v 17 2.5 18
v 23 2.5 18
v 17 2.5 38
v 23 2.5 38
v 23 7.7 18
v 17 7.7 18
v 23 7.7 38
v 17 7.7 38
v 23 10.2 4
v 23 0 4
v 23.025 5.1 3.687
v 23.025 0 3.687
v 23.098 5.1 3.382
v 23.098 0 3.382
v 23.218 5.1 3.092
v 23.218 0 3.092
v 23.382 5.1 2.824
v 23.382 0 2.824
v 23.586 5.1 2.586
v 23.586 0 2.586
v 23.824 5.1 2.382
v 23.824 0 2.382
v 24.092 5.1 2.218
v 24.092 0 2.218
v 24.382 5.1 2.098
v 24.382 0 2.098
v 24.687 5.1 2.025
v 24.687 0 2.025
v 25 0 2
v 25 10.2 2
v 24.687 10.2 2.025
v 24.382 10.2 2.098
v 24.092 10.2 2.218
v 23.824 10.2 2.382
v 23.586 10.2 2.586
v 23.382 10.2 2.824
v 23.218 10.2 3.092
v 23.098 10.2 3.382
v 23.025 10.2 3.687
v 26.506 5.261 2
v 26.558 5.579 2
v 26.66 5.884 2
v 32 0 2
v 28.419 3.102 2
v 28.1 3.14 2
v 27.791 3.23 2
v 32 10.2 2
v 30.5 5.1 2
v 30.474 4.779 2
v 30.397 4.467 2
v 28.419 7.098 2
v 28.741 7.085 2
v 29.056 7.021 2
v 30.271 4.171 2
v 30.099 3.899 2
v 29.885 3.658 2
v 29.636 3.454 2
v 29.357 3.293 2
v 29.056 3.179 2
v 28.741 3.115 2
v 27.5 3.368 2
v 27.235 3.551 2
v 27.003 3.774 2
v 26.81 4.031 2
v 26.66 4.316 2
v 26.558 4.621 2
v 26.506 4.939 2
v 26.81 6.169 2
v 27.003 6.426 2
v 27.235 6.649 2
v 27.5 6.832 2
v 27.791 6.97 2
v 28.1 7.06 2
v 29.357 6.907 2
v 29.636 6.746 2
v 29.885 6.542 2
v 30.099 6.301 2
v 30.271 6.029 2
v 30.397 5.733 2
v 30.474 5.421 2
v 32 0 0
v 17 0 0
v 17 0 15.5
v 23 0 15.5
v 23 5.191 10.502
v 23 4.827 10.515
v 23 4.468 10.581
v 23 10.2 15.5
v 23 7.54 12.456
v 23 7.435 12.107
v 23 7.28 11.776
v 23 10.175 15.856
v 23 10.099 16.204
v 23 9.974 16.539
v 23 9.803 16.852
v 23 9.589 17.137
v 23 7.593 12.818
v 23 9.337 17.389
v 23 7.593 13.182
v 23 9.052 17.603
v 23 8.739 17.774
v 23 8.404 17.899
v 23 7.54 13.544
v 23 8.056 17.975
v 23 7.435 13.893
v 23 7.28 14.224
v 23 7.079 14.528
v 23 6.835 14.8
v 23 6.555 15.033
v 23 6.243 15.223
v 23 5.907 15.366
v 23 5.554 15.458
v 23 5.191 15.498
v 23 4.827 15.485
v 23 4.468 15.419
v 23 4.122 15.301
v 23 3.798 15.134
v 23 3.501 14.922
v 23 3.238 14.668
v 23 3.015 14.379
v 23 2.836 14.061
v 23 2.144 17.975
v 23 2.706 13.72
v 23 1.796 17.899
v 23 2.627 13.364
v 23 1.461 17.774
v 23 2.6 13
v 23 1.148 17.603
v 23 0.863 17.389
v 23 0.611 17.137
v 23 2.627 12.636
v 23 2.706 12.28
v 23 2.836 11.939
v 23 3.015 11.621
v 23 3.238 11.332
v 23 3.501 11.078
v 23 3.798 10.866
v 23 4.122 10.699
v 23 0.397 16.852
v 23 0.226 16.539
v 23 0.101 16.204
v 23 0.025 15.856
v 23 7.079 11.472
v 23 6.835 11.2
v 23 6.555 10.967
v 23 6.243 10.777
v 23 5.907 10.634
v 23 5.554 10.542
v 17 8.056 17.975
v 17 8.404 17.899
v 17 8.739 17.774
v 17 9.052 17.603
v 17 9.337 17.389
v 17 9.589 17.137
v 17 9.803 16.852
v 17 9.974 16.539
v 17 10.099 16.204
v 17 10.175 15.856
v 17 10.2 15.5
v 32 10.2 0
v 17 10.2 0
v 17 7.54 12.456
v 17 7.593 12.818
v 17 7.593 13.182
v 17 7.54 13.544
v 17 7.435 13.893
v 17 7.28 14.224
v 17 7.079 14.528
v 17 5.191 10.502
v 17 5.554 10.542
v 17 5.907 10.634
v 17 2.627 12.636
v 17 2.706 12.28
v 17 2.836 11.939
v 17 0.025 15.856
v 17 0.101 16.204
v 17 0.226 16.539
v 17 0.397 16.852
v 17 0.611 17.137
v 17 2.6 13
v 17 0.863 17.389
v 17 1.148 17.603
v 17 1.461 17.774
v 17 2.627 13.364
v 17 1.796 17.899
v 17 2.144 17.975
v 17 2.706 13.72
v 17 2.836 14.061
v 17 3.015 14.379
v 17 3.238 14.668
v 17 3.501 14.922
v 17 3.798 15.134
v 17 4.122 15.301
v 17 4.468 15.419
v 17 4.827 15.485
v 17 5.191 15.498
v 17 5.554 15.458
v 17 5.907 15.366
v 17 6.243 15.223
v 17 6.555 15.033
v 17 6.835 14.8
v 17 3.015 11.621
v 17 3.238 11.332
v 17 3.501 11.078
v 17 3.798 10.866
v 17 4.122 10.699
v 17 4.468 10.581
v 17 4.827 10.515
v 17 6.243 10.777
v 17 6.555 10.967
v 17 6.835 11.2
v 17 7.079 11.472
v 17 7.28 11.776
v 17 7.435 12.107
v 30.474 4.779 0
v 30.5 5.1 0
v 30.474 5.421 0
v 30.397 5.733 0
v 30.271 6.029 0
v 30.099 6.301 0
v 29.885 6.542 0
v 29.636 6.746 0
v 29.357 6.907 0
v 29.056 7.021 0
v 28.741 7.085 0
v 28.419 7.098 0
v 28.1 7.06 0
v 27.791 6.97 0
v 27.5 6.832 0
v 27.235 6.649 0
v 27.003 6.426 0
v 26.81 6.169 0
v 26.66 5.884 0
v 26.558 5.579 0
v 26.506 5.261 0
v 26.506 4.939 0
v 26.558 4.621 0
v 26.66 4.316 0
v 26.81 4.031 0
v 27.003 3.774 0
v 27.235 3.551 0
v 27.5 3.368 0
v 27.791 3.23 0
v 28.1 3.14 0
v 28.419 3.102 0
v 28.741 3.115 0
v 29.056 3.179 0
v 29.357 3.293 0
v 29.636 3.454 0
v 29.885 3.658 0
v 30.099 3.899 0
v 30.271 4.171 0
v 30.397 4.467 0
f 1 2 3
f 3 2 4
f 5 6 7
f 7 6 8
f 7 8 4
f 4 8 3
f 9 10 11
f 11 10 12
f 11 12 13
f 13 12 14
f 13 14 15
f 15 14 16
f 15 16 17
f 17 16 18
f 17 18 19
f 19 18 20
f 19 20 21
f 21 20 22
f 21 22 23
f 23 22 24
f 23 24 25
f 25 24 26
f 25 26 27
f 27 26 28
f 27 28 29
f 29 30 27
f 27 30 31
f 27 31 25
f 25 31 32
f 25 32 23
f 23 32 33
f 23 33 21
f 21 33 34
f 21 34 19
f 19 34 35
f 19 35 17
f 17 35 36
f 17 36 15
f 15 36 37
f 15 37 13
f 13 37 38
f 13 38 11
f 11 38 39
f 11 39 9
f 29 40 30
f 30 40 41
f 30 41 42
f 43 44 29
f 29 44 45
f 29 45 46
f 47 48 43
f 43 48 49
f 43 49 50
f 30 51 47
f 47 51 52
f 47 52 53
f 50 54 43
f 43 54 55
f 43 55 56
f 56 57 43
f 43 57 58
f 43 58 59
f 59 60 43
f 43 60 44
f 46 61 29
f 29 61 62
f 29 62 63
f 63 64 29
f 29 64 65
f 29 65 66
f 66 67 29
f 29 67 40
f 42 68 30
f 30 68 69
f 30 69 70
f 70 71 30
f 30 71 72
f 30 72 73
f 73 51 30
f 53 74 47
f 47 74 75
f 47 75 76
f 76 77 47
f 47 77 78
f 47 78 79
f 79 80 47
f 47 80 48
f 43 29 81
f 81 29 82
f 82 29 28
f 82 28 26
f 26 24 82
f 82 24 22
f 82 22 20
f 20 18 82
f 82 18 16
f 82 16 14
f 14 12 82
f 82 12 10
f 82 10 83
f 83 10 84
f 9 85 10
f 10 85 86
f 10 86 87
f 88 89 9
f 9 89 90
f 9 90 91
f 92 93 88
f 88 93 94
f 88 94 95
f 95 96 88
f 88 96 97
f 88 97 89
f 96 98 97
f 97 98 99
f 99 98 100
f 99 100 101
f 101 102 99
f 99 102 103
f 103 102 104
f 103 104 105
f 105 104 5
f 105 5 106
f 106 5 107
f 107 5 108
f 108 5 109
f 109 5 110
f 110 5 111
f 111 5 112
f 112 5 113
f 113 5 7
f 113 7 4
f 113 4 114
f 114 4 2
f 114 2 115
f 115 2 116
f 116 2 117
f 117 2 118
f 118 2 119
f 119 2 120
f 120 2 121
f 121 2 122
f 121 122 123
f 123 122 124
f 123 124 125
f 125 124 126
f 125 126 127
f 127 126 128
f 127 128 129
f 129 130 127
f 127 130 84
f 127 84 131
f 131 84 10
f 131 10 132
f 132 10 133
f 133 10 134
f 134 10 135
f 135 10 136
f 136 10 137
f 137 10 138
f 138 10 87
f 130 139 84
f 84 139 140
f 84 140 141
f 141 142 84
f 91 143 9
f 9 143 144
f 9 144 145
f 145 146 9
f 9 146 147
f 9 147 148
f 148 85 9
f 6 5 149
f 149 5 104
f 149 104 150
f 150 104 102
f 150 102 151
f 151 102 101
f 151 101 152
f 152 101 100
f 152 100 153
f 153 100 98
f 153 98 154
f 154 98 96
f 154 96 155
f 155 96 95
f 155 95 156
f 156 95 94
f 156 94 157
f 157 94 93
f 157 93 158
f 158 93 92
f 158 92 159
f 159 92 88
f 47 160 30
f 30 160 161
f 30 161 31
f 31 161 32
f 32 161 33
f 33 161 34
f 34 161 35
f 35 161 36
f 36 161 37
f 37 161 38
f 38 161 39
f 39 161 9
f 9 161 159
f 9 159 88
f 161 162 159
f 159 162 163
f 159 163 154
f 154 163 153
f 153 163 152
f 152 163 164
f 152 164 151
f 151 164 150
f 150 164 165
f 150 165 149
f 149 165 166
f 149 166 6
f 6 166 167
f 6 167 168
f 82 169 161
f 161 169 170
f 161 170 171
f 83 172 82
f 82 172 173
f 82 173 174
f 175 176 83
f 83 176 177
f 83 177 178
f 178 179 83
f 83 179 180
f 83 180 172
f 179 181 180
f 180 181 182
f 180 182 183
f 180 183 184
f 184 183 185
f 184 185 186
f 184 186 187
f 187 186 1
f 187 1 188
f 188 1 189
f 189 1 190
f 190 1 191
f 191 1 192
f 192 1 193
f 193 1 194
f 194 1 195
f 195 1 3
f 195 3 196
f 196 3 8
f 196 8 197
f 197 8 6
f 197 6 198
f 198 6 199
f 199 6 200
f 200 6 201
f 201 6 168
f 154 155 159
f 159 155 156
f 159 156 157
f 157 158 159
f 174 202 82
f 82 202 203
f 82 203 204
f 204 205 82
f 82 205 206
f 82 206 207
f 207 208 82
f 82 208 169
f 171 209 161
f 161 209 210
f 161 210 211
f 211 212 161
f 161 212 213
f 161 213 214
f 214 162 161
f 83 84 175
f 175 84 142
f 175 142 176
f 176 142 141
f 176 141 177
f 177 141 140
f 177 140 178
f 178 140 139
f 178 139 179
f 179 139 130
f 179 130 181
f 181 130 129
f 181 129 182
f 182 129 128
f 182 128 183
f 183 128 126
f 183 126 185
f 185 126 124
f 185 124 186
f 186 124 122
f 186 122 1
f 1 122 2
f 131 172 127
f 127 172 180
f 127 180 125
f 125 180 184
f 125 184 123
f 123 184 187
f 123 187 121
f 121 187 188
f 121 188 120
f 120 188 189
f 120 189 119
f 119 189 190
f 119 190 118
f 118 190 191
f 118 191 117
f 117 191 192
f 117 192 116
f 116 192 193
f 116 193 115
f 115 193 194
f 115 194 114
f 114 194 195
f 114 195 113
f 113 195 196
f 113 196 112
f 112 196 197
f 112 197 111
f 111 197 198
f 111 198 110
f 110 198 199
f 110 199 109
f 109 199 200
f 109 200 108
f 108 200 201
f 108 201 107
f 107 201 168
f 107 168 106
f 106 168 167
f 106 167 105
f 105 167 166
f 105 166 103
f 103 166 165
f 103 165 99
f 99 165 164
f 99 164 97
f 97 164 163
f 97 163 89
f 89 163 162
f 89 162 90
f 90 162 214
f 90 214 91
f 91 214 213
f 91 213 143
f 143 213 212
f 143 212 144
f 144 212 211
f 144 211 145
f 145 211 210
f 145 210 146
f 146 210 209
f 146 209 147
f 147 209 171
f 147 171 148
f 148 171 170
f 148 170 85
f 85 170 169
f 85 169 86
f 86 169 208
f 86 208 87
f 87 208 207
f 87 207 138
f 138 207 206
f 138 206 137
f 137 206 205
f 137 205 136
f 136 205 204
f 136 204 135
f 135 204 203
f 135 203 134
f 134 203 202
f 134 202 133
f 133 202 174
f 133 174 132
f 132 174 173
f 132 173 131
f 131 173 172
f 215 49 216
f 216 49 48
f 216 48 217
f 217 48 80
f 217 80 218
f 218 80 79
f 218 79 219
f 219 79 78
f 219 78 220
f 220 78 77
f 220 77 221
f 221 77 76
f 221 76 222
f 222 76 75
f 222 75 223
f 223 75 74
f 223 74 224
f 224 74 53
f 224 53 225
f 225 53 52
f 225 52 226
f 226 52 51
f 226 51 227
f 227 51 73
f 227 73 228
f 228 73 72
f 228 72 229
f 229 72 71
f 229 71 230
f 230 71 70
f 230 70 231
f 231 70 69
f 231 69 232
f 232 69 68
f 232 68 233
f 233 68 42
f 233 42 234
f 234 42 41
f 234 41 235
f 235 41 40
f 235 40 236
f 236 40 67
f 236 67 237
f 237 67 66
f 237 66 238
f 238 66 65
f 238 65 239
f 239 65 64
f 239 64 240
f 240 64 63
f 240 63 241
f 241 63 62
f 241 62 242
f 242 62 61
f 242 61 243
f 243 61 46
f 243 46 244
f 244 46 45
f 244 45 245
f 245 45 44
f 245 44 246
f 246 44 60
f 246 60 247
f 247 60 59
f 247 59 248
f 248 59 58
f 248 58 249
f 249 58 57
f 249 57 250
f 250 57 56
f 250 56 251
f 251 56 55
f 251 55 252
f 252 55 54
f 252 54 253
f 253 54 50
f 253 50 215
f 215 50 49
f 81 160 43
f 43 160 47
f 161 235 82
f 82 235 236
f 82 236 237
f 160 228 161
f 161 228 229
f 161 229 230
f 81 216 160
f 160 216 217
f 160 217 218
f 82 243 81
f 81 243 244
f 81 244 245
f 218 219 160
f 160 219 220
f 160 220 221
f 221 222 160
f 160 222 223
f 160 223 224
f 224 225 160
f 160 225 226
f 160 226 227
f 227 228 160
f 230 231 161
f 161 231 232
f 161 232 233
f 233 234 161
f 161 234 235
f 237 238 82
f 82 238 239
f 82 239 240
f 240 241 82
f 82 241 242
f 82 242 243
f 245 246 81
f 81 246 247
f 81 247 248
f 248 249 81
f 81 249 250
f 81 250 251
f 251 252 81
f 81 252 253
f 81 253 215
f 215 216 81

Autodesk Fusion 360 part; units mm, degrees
sketch "Sketch1" plane through (0, 0, 0) normal (0, 0, 1) x (1, 0, 0)
  line L0 (0, 0) -> (32, 0)
  line L1 (32, 0) -> (32, 10.2)
  line L2 (32, 10.2) -> (0, 10.2)
  line L3 (0, 10.2) -> (0, 0)
  dimension "d1" = 32
  dimension "d2" = 10.2
extrude "Extrude1" add sketch "Sketch1" along normal blind 2
sketch "Sketch2" plane through (0, 0, 2) normal (0, 0, 1) x (-1, 0, 0)
  line L0 (0, -10.2) -> (0, 0)
  line L1 (0, 0) -> (-32, 0)
  line L2 (-32, 0) -> (-32, -10.2)
  line L3 (-32, -10.2) -> (0, -10.2)
  line L4 (-7, -10.2) -> (-25, -10.2)
  line L5 (-25, -10.2) -> (-25, 0)
  line L6 (-25, 0) -> (-7, 0)
  line L7 (-7, 0) -> (-7, -10.2)
  circle A0 centre (-3.5, -5.1) radius 2
  circle A1 centre (-28.5, -5.1) radius 2
  dimension "d5" = 7
  dimension "d6" = 7
  dimension "d7" = 5.1
  dimension "d8" = 3.5
  dimension "d9" = 4
  dimension "d10" = 3.5
  dimension "d11" = 5.1
  dimension "d12" = 4
extrude "Extrude2" cut sketch "Sketch2" against normal blind 2.1 contours A0 | A1
extrude "Extrude3" add sketch "Sketch2" along normal blind 16 contours L1 L3 L4 L5 L6 L7
sketch "Sketch3" plane through (25, 0, 0) normal (1, 0, 0) x (0, 1, 0)
  line L0 (0, 2) -> (10.2, 2)
  line L1 (10.2, 2) -> (10.2, 18)
  line L2 (10.2, 18) -> (0, 18)
  line L3 (0, 18) -> (0, 2)
  circle A0 centre (5.1, 13) radius 2.5
  dimension "d17" = 5
  dimension "d18" = 5.1
  dimension "d19" = 5
extrude "Extrude4" cut sketch "Sketch3" against normal blind 20 contours A0
fillet "Fillet1" radius 2.5 2 edges at (16, 0, 18) (16, 10.2, 18)
fillet "Fillet2" radius 0.25 2 edges at (25, 5.1, 2) (7, 5.1, 2)
sketch "Sketch4" plane through (0, 0, 0) normal (0, -1, 0) x (1, 0, 0)
  line L0 (25, 15.5) -> (7, 15.5)
  line L1 (7, 15.5) -> (7, 2.25)
  arc A0 (6.75, 2) -> (7, 2.25) centre (6.75, 2.25) ccw
  line L2 (6.75, 2) -> (0, 2)
  line L3 (0, 2) -> (0, 0)
  line L4 (0, 0) -> (32, 0)
  line L5 (32, 0) -> (32, 2)
  line L6 (32, 2) -> (25.25, 2)
  arc A1 (25, 2.25) -> (25.25, 2) centre (25.25, 2.25) ccw
  line L7 (25, 2.25) -> (25, 15.5)
  line L8 (15.0115, 13.8918) -> (15.2499, 13.8388)
  line L9 (15.0115, 1.9217) -> (15.2499, 1.8688)
  line L10 (15.2499, 2.3085) -> (10.5625, 8.1981)
  line L11 (10.6841, 8.3354) -> (15.2499, 13.4918)
  line L12 (10.817, 8.3354) -> (15.3124, 13.4128)
  line L13 (15.3132, 2.3954) -> (10.6954, 8.1981)
  spline S0 degree 5 poles (15.0115, 13.8918) (15.0366, 13.8331) (15.0755, 13.7537) (15.1214, 13.6739) (15.1743, 13.5935) (15.2341, 13.5126) (15.2499, 13.4918) knots 0 0 0 0 0 0 0.04 0.053771 0.053771 0.053771 0.053771 0.053771 0.053771
  line L14 (15.2177, 13.5342) -> (15.2821, 13.4495)
  spline S1 degree 5 poles (15.2499, 2.3085) (15.2476, 2.3054) (15.194, 2.2294) (15.1434, 2.1527) (15.0959, 2.0753) (15.0514, 1.9972) (15.0115, 1.9217) knots 0.958261 0.958261 0.958261 0.958261 0.958261 0.958261 0.96 1 1 1 1 1 1
  line L15 (15.2777, 2.3478) -> (15.2221, 2.2693)
  line L16 (19.8903, 8.1981) -> (19.6849, 7.759)
  line L17 (19.6849, 7.759) -> (20.8035, 8.2887)
  line L18 (20.8035, 8.2887) -> (19.6849, 8.7197)
  line L19 (19.6849, 8.7197) -> (19.8674, 8.3354)
  spline S2 degree 5 poles (15.2499, 13.8388) (15.275, 13.7801) (15.3328, 13.6621) (15.4428, 13.4833) (15.636, 13.2415) (15.9534, 12.9319) (16.3409, 12.6103) (16.7857, 12.2676) (17.2659, 11.8886) (17.7534, 11.4561) (18.2174, 10.9546) (18.6276, 10.3741) (18.9469, 9.734) (19.126, 9.1768) (19.2132, 8.7476) (19.2502, 8.4653) (19.263, 8.3354) knots 0 0 0 0 0 0 0.04 0.08 0.12 0.16 0.2 0.24 0.28 0.32 0.36 0.4 0.44 0.473865 0.473865 0.473865 0.473865 0.473865 0.473865
  line L20 (19.1848, 9.1287) -> (19.3411, 7.542)
  spline S3 degree 5 poles (19.2746, 8.1981) (19.2853, 8.0482) (19.2958, 7.7438) (19.2774, 7.2862) (19.1846, 6.69) (18.9625, 5.9984) (18.6463, 5.3801) (18.2572, 4.8452) (17.8198, 4.3863) (17.3603, 3.9873) (16.904, 3.6275) (16.4734, 3.2862) (16.0845, 2.9471) (15.7463, 2.6009) (15.5197, 2.3146) (15.375, 2.094) (15.2897, 1.9443) (15.2499, 1.8688) knots 0.481014 0.481014 0.481014 0.481014 0.481014 0.481014 0.52 0.56 0.6 0.64 0.68 0.72 0.76 0.8 0.84 0.88 0.92 0.96 1 1 1 1 1 1
  line L21 (19.2097, 9.1087) -> (19.3396, 7.2875)
  spline S4 degree 5 poles (15.3124, 13.4128) (15.332, 13.3889) (15.4036, 13.3041) (15.5393, 13.1573) (15.762, 12.9459) (16.1025, 12.6633) (16.5474, 12.3206) (17.0276, 11.9416) (17.515, 11.5091) (17.979, 11.0075) (18.3892, 10.427) (18.7131, 9.7778) (18.894, 9.2098) (18.9811, 8.7693) (19.0172, 8.476) (19.0296, 8.3354) knots 0.064218 0.064218 0.064218 0.064218 0.064218 0.064218 0.08 0.12 0.16 0.2 0.24 0.28 0.32 0.36 0.4 0.44 0.476625 0.476625 0.476625 0.476625 0.476625 0.476625
  line L22 (14.9219, 13.8881) -> (15.7028, 12.9376)
  line L23 (18.9651, 9.0672) -> (19.094, 7.6035)
  spline S5 degree 5 poles (19.0398, 8.1981) (19.0483, 8.0587) (19.0561, 7.765) (19.0358, 7.3185) (18.9432, 6.7334) (18.7242, 6.0513) (18.408, 5.433) (18.0189, 4.8982) (17.5814, 4.4393) (17.1219, 4.0403) (16.6657, 3.6805) (16.235, 3.3392) (15.8681, 3.0192) (15.6141, 2.7622) (15.4485, 2.5703) (15.3521, 2.4471) (15.3132, 2.3954) knots 0.483768 0.483768 0.483768 0.483768 0.483768 0.483768 0.52 0.56 0.6 0.64 0.68 0.72 0.76 0.8 0.84 0.88 0.92 0.948678 0.948678 0.948678 0.948678 0.948678 0.948678
  line L24 (18.989, 9.0312) -> (19.0905, 7.3649)
  line L25 (15.7537, 2.9821) -> (14.8727, 1.8087)
  line L26 (10.6954, 8.1981) -> (19.0398, 8.1981)
  line L27 (19.2746, 8.1981) -> (19.8903, 8.1981)
  line L28 (19.263, 8.3354) -> (19.8674, 8.3354)
  line L29 (10.6725, 8.3354) -> (10.3002, 8.665)
  line L30 (10.3002, 8.665) -> (9.1473, 8.665)
  line L31 (9.1473, 8.665) -> (9.409, 8.2777)
  line L32 (9.409, 8.2777) -> (9.1615, 7.917)
  line L33 (9.1615, 7.917) -> (10.3, 7.917)
  line L34 (10.3, 7.917) -> (10.5625, 8.1981)
  line L35 (10.6725, 8.3354) -> (10.6841, 8.3354)
  line L36 (10.817, 8.3354) -> (19.0296, 8.3354)
  point P0 (16.3357, 12.6206)
  point P1 (16.627, 3.4048)
  point P2 (18.7456, 10.1048)
  point P3 (18.825, 5.7617)
  point P4 (18.5867, 5.8147)
  point P5 (18.5072, 10.1578)
  point P6 (16.0973, 12.6736)
  point P7 (16.3886, 3.4577)
extrude "Extrude5" cut sketch "Sketch4" against normal blind 0.3 contours L8 L9 S0 L14 S1 L15 S2 L20 S3 L21 S4 L22 L23 S5 L24 L25 | L16 L17 L18 L19 L20 L21 L27 L28 | L10 L11 L12 L13 L14 L15 L22 L23 L24 L25 L26 L29 L30 L31 L32 L33 L34 L35 L36
sketch "Sketch5" plane through (0, 0, 0) normal (0, -1, 0) x (1, 0, 0)
  line L0 (7, 15.5) -> (23, 15.5)
  line L1 (23, 15.5) -> (23, 0)
  line L2 (23, 0) -> (7, 0)
  line L3 (7, 0) -> (7, 15.5)
  line L4 (32, 0) -> (0, 0)
  point P0 (7, 15.5)
extrude "Extrude6" add sketch "Sketch4" sketch "Sketch5" against normal blind 1 contours L0 L1 A0 L2 L3 L4 L5 L6 A1 L7 | L8 L9 S0 L14 S1 L15 S2 L20 S3 L21 S4 L22 L23 S5 L24 L25 | L16 L17 L18 L19 L20 L21 L27 L28 | L10 L11 L12 L13 L14 L15 L22 L23 L24 L25 L26 L29 L30 L31 L32 L33 L34 L35 L36 | L13 S5 L26 of sketch 2
sketch "Sketch6" plane through (0, 0, 0) normal (0, -1, 0) x (1, 0, 0)
  line L0 (25, 15.5) -> (7, 15.5)
  line L1 (7, 15.5) -> (7, 2.25)
  arc A0 (6.75, 2) -> (7, 2.25) centre (6.75, 2.25) ccw
  line L2 (6.75, 2) -> (0, 2)
  line L3 (0, 2) -> (0, 0)
  line L4 (0, 0) -> (32, 0)
  line L5 (32, 0) -> (32, 2)
  line L6 (32, 2) -> (25.25, 2)
  arc A1 (25, 2.25) -> (25.25, 2) centre (25.25, 2.25) ccw
  line L7 (25, 2.25) -> (25, 15.5)
  line L8 (0, 20) -> (17, 20)
  line L9 (17, 20) -> (17, 0)
  line L10 (17, 0) -> (0, 0)
  line L11 (0, 0) -> (0, 20)
  dimension "d32" = 17
extrude "Extrude7" cut sketch "Sketch6" against normal blind 12 contours L0 L1 A0 L2 L3 L4 L9 L10 L11 | L0 L1 A0 L2 L8 L9 L11
sketch "Sketch7" plane through (0, 0, 0) normal (0, -1, 0) x (1, 0, 0)
  line L0 (17, 15.5) -> (17, 0)
  line L1 (17, 0) -> (32, 0)
  line L2 (32, 0) -> (32, 2)
  line L3 (32, 2) -> (25.25, 2)
  arc A0 (25, 2.25) -> (25.25, 2) centre (25.25, 2.25) ccw
  line L4 (25, 2.25) -> (25, 15.5)
  line L5 (25, 15.5) -> (17, 15.5)
  line L6 (23, 18) -> (25.1716, 18)
  line L7 (25.1716, 18) -> (25.1716, 2)
  line L8 (25.1716, 2) -> (23, 2)
  line L9 (23, 2) -> (23, 18)
  line L10 (25, 18) -> (17, 18)
  dimension "d35" = 2
extrude "Extrude8" cut sketch "Sketch7" against normal blind 12 contours A0 L4 L5 L6 L7 L9 L10 | A0 L4 L5 L7 L8 L9
sketch "Sketch8" plane through (0, 10.2, 0) normal (0, 1, 0) x (-1, 0, 0)
  line L0 (-23, 15.5) -> (-23, 2)
  line L1 (-23, 2) -> (-25.1716, 2)
  line L2 (-25.1716, 2) -> (-25.1716, 2.0126)
  arc A0 (-25.25, 2) -> (-25.1716, 2.0126) centre (-25.25, 2.25) ccw
  line L3 (-25.25, 2) -> (-32, 2)
  line L4 (-32, 2) -> (-32, 0)
  line L5 (-32, 0) -> (-17, 0)
  line L6 (-17, 0) -> (-17, 15.5)
  line L7 (-17, 15.5) -> (-23, 15.5)
  line L8 (-25.2855, 2) -> (-25.1, 2)
  line L9 (-25.1, 2) -> (-25.1, 2.05)
  line L10 (-25.1, 2.05) -> (-25.2855, 2.05)
  line L11 (-25.2855, 2.05) -> (-25.2855, 2)
extrude "Extrude9" cut sketch "Sketch8" against normal blind 12 contours L1 L2 A0 L3 L8 L9 L10 L11 | L2 A0 L8
fillet "Fillet3" radius 2 1 edges at (23, 5.1, 2)
extrude "Extrude10" add 1 faces at (21, 4.2333, 18) along direction (0, 0, 1) blind 20
